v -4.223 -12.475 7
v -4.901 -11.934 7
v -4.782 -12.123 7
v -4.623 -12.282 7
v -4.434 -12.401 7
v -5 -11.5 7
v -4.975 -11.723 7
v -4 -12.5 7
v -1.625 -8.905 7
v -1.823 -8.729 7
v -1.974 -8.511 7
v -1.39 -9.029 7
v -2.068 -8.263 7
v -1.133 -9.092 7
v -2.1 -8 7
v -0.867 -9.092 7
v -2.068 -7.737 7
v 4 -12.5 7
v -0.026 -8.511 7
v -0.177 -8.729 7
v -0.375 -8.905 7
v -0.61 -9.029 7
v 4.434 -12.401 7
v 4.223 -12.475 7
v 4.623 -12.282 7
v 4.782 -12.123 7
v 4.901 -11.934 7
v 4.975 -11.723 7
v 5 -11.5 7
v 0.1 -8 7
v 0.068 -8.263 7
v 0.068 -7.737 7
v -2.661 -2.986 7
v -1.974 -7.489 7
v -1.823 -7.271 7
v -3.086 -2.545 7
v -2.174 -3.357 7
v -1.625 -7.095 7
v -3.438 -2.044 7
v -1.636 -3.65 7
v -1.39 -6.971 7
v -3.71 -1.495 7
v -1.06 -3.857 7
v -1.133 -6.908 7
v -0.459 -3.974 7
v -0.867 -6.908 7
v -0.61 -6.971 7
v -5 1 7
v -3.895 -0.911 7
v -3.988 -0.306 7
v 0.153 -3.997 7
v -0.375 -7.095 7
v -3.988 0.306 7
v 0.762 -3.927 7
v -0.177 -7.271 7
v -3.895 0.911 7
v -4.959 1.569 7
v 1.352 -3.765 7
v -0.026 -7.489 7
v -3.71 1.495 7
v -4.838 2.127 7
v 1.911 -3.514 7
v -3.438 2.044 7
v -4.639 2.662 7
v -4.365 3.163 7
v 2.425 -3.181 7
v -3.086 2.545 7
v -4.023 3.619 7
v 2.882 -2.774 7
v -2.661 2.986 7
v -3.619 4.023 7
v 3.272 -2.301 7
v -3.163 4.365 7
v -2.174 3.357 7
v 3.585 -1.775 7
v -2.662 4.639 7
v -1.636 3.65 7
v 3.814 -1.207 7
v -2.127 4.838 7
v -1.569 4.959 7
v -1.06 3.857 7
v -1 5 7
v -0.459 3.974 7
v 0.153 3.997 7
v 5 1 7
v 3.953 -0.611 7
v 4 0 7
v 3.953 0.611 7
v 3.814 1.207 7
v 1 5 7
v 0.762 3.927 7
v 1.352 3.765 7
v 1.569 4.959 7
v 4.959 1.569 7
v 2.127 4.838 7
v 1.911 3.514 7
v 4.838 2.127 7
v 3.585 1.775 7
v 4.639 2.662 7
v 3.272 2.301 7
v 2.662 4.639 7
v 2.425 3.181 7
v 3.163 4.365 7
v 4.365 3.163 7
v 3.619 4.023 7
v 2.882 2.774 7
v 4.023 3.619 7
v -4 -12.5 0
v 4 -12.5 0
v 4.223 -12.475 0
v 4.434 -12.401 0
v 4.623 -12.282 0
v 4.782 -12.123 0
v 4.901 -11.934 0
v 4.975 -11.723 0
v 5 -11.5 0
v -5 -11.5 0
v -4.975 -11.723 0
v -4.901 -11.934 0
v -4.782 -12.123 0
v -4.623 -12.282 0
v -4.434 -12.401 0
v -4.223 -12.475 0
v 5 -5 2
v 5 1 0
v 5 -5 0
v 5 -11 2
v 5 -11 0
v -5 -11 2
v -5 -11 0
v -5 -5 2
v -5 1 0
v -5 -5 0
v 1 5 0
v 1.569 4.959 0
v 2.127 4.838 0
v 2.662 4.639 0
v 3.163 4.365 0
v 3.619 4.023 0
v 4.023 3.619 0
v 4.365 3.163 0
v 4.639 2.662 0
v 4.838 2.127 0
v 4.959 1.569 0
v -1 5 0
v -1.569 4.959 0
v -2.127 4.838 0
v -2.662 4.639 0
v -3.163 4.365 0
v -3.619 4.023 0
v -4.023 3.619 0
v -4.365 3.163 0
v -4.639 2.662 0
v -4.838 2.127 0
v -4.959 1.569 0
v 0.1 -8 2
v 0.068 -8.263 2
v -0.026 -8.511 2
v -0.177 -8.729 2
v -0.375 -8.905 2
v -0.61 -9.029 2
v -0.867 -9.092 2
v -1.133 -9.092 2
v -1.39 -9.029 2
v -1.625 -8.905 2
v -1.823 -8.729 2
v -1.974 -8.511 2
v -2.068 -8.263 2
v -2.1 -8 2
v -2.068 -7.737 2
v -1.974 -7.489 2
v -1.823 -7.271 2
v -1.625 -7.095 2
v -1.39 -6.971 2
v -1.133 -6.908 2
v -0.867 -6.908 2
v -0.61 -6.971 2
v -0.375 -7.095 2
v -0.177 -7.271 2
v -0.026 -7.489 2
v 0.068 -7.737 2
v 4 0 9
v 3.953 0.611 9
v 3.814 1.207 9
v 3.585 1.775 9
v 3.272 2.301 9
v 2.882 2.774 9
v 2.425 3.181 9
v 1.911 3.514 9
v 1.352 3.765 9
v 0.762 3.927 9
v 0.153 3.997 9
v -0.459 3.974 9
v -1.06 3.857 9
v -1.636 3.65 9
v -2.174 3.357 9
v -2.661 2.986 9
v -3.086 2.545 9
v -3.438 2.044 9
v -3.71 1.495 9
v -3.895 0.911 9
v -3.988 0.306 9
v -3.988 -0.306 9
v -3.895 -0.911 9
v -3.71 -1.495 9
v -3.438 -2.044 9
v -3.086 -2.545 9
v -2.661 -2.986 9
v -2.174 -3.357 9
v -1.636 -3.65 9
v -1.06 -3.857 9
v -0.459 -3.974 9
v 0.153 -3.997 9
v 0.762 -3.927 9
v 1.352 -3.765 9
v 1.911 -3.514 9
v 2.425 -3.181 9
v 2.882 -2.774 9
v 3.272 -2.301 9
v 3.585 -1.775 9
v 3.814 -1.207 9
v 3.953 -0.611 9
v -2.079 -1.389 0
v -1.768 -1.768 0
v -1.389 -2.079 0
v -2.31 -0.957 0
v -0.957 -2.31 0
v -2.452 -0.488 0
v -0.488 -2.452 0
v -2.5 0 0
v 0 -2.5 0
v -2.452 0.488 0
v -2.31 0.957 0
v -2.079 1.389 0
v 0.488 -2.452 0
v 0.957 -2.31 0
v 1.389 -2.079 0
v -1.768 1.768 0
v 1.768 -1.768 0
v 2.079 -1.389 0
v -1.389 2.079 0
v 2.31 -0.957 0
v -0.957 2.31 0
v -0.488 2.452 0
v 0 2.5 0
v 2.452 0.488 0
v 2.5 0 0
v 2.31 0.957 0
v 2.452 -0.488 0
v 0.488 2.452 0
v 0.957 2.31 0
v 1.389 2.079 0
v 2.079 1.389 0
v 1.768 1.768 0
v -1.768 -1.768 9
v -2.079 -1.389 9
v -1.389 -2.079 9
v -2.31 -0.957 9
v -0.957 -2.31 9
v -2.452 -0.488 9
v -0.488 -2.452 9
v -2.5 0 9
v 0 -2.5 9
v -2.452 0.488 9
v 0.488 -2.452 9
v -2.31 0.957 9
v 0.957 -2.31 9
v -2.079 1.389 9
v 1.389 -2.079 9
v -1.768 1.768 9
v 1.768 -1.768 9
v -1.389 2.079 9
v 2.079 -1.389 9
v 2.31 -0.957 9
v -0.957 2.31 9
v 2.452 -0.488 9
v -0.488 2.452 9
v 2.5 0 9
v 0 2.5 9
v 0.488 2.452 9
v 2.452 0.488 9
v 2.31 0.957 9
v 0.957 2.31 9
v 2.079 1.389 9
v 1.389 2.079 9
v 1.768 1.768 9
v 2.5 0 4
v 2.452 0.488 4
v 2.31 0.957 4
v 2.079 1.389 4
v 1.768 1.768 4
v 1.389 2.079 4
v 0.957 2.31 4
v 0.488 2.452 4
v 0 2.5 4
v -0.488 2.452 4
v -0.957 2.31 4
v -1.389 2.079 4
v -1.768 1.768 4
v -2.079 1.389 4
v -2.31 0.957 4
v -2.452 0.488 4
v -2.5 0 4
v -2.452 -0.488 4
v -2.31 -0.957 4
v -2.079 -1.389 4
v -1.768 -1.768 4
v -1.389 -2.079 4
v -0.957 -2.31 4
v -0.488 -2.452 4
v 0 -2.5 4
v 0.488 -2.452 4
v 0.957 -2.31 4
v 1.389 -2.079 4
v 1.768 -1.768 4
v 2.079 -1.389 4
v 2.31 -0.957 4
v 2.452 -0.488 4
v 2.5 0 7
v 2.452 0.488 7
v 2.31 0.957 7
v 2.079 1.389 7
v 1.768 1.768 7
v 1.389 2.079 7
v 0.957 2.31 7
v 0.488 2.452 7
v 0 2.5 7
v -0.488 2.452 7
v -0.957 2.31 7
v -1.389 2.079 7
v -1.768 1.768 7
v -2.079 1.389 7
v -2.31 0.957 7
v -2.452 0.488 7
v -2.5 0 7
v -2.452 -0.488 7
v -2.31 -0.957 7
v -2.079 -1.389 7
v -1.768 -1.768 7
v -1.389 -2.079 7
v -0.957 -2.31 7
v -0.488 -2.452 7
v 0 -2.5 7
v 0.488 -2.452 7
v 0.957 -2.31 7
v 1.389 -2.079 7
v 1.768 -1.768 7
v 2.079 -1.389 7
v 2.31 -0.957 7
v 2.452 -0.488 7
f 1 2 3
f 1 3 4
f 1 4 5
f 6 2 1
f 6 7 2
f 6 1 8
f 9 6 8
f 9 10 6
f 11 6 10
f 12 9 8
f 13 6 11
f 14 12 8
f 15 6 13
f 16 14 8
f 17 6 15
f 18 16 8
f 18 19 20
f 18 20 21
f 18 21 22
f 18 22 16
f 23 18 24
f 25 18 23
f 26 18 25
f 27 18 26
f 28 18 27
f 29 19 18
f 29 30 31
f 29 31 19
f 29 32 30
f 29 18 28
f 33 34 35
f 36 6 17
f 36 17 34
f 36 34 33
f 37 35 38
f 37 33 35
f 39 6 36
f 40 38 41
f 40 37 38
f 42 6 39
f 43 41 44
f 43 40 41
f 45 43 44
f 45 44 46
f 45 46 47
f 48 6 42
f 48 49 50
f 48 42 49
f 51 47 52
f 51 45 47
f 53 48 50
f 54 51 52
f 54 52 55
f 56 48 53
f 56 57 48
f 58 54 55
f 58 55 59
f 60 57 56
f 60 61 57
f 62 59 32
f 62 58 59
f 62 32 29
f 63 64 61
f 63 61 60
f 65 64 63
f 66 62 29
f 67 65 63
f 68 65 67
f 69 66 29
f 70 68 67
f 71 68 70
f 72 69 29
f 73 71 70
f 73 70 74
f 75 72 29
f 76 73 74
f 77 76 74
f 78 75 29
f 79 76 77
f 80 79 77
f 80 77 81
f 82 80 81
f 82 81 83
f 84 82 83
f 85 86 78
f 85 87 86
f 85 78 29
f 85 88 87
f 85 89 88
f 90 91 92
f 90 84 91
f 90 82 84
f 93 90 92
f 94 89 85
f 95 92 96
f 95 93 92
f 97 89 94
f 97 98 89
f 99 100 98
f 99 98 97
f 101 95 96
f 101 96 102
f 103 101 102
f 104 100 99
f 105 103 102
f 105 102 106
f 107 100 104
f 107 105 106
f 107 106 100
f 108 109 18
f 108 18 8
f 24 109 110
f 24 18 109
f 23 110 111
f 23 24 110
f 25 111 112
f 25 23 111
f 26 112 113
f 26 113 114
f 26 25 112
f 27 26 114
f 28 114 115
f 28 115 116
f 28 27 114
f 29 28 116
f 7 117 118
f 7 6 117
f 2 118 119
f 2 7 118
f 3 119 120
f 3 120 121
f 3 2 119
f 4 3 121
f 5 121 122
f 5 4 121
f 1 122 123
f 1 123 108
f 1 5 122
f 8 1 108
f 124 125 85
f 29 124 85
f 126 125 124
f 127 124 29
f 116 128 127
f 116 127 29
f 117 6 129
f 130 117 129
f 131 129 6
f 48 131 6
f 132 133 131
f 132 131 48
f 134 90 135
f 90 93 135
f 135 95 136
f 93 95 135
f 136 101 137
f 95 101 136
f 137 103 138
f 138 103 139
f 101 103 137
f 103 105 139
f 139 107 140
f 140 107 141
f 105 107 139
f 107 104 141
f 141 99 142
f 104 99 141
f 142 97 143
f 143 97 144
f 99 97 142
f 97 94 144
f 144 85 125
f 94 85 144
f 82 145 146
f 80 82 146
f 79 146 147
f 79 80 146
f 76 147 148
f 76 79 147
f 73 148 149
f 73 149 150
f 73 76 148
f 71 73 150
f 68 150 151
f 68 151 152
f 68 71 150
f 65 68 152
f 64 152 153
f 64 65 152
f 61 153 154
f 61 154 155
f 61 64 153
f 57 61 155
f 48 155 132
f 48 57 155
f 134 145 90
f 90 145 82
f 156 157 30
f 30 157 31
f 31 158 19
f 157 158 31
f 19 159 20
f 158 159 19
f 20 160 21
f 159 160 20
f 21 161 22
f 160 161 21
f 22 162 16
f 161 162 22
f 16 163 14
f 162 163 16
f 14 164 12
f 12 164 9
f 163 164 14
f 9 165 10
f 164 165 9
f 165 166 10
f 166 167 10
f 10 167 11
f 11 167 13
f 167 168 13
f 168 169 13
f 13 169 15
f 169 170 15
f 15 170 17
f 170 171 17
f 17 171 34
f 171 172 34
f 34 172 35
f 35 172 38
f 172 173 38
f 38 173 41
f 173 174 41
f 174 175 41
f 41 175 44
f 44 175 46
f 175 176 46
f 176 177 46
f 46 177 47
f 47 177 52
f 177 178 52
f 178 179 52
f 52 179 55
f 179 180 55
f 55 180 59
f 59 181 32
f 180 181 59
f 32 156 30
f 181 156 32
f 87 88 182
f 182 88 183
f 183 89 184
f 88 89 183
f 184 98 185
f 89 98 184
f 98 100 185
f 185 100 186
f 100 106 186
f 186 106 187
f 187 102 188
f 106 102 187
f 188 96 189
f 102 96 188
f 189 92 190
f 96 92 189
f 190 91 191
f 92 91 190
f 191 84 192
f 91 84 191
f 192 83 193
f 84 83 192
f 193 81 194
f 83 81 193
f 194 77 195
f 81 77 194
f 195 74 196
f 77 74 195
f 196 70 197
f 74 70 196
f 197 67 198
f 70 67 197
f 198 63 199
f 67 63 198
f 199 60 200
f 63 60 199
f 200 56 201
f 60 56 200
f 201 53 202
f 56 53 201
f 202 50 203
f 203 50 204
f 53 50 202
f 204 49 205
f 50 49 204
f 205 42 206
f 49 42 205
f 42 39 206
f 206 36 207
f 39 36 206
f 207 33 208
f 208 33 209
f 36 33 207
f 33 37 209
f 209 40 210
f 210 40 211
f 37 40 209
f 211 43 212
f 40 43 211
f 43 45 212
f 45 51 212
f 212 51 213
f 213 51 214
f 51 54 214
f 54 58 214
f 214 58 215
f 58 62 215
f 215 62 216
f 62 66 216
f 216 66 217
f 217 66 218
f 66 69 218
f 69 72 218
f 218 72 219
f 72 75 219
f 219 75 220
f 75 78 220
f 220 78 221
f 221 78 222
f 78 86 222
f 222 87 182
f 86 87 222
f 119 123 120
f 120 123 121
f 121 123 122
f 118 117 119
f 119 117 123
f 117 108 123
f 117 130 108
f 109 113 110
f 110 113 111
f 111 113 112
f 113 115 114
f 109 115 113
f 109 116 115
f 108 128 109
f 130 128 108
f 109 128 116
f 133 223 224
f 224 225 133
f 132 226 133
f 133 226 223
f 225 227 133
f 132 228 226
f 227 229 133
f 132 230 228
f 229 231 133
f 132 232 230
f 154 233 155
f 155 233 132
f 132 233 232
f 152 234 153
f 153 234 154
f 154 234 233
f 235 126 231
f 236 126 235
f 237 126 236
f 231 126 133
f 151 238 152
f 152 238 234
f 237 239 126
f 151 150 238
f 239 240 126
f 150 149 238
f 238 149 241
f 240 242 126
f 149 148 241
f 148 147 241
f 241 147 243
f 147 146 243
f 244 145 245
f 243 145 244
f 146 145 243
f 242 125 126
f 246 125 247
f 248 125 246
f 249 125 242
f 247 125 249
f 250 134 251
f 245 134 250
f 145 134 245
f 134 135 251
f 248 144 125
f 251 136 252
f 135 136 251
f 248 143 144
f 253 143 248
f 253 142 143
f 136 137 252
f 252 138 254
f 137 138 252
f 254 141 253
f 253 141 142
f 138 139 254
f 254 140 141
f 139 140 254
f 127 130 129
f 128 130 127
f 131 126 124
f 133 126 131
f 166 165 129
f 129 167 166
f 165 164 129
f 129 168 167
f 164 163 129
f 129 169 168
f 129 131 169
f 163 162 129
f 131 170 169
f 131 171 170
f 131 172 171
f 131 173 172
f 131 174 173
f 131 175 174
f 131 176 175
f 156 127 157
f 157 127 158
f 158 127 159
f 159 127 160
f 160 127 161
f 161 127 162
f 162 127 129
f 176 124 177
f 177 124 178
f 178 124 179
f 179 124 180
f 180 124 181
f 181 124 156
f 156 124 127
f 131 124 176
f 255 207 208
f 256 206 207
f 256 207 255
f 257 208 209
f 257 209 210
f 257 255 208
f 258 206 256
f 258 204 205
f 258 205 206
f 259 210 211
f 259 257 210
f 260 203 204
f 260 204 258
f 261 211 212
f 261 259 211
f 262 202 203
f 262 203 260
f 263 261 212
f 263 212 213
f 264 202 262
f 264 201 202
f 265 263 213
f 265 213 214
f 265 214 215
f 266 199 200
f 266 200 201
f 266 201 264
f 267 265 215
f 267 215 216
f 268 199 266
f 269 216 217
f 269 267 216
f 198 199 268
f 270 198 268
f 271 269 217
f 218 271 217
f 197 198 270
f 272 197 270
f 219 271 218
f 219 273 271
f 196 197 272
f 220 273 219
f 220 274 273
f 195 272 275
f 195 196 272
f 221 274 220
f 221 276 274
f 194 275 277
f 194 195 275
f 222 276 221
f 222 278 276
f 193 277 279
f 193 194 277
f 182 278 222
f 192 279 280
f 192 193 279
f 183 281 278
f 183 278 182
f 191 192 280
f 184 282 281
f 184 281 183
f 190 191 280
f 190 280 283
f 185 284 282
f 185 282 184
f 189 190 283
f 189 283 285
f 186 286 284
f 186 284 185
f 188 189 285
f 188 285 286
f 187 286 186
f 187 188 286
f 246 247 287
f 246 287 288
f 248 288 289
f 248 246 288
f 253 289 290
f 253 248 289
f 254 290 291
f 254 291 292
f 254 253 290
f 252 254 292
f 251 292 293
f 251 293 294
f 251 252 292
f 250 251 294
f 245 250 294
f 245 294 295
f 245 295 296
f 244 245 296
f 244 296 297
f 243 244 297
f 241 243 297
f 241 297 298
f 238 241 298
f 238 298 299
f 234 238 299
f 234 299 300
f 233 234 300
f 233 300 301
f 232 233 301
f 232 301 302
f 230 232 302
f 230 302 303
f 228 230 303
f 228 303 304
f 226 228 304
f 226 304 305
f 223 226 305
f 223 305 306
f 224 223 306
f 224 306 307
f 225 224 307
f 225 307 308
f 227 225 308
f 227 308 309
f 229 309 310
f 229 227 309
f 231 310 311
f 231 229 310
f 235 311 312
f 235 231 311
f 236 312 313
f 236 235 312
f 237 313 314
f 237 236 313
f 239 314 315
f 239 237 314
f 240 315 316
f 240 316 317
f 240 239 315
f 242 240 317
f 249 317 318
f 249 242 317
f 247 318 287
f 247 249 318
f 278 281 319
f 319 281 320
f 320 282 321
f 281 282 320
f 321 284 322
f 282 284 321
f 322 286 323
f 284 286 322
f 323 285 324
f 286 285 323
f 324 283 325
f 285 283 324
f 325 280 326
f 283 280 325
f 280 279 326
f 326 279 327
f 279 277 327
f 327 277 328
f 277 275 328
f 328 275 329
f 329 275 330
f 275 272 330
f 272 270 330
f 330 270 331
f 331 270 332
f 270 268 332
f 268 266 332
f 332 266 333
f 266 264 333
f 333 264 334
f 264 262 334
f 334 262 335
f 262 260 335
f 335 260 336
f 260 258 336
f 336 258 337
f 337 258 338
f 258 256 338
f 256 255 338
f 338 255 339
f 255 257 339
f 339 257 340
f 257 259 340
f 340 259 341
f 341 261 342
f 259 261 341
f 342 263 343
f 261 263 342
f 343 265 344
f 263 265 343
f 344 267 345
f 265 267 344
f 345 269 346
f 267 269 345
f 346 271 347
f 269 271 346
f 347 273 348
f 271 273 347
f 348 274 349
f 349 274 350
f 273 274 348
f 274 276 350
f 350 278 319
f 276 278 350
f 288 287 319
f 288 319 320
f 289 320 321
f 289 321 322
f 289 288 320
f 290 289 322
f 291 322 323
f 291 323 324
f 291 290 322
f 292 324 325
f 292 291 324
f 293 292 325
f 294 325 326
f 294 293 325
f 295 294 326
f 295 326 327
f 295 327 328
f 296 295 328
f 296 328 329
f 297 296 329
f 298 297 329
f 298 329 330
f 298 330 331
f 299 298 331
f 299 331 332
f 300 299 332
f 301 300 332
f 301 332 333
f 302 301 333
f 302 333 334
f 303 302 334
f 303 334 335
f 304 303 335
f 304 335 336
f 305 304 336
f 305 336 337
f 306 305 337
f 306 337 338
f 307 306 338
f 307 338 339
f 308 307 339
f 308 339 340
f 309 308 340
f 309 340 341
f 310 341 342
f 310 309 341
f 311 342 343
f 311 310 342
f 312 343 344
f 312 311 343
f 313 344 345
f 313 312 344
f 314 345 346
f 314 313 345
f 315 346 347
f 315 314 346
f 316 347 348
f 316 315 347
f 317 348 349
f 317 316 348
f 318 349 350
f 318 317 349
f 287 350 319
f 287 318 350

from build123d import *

# Parameters (mm, degrees)
SKETCH_W        = 10
SKETCH_H        = 17.5
SKETCH_R        = 2.5
PAD_DEPTH       = 7
SKETCH001_W     = 10
SKETCH001_H     = 6
POCKET_DEPTH    = 2
SKETCH002_R     = 1.1
POCKET001_DEPTH = 5.001
SKETCH003_R     = 4
PAD001_DEPTH    = 2
SKETCH004_R     = 2.5
POCKET002_DEPTH = 5
FILLET_R        = 4
FILLET001_R     = 1
FILLET002_R     = 1


with BuildPart() as part:
    # Sketch → Pad (new body)
    with BuildSketch(Plane.XY):
        with Locations((0, -3.75)):
            Rectangle(SKETCH_W, SKETCH_H)
        Circle(SKETCH_R, mode=Mode.SUBTRACT)
    extrude(amount=PAD_DEPTH)

    # Sketch001 (on Face6 of Pad) → Pocket (cut)
    with BuildSketch(Plane(origin=(0, 0, 0), x_dir=(1, 0, 0), z_dir=(0, 0, -1))):
        with Locations((0, 8)):
            Rectangle(SKETCH001_W, SKETCH001_H)
    extrude(amount=-POCKET_DEPTH, mode=Mode.SUBTRACT)

    # Sketch002 (on Face7 of Pocket) → Pocket001 (cut, through all)
    with BuildSketch(Plane(origin=(0, 0, 2), x_dir=(1, 0, 0), z_dir=(0, 0, -1))):
        with Locations((-1, 8)):
            Circle(SKETCH002_R)
    extrude(amount=-POCKET001_DEPTH, mode=Mode.SUBTRACT)

    # Sketch003 (on Face7 of Pad) → Pad001 (join)
    with BuildSketch(Plane.XY.offset(7)):
        Circle(SKETCH003_R)
    extrude(amount=PAD001_DEPTH)

    # Sketch004 (on Face15 of Pad001) → Pocket002 (cut)
    with BuildSketch(Plane.XY.offset(9)):
        Circle(SKETCH004_R)
    extrude(amount=-POCKET002_DEPTH, mode=Mode.SUBTRACT)

    # Fillet
    fillet_edges = [part.edges().sort_by_distance(p)[0] for p in [
        (5, 5, 3.5),
        (-5, 5, 3.5),
    ]]
    fillet(fillet_edges, radius=FILLET_R)

    # Fillet001
    fillet001_edges = [part.edges().sort_by_distance(p)[0] for p in [
        (-5, -12.5, 3.5),
    ]]
    fillet(fillet001_edges, radius=FILLET001_R)

    # Fillet002
    fillet002_edges = [part.edges().sort_by_distance(p)[0] for p in [
        (5, -12.5, 3.5),
    ]]
    fillet(fillet002_edges, radius=FILLET002_R)


solid = part.part
